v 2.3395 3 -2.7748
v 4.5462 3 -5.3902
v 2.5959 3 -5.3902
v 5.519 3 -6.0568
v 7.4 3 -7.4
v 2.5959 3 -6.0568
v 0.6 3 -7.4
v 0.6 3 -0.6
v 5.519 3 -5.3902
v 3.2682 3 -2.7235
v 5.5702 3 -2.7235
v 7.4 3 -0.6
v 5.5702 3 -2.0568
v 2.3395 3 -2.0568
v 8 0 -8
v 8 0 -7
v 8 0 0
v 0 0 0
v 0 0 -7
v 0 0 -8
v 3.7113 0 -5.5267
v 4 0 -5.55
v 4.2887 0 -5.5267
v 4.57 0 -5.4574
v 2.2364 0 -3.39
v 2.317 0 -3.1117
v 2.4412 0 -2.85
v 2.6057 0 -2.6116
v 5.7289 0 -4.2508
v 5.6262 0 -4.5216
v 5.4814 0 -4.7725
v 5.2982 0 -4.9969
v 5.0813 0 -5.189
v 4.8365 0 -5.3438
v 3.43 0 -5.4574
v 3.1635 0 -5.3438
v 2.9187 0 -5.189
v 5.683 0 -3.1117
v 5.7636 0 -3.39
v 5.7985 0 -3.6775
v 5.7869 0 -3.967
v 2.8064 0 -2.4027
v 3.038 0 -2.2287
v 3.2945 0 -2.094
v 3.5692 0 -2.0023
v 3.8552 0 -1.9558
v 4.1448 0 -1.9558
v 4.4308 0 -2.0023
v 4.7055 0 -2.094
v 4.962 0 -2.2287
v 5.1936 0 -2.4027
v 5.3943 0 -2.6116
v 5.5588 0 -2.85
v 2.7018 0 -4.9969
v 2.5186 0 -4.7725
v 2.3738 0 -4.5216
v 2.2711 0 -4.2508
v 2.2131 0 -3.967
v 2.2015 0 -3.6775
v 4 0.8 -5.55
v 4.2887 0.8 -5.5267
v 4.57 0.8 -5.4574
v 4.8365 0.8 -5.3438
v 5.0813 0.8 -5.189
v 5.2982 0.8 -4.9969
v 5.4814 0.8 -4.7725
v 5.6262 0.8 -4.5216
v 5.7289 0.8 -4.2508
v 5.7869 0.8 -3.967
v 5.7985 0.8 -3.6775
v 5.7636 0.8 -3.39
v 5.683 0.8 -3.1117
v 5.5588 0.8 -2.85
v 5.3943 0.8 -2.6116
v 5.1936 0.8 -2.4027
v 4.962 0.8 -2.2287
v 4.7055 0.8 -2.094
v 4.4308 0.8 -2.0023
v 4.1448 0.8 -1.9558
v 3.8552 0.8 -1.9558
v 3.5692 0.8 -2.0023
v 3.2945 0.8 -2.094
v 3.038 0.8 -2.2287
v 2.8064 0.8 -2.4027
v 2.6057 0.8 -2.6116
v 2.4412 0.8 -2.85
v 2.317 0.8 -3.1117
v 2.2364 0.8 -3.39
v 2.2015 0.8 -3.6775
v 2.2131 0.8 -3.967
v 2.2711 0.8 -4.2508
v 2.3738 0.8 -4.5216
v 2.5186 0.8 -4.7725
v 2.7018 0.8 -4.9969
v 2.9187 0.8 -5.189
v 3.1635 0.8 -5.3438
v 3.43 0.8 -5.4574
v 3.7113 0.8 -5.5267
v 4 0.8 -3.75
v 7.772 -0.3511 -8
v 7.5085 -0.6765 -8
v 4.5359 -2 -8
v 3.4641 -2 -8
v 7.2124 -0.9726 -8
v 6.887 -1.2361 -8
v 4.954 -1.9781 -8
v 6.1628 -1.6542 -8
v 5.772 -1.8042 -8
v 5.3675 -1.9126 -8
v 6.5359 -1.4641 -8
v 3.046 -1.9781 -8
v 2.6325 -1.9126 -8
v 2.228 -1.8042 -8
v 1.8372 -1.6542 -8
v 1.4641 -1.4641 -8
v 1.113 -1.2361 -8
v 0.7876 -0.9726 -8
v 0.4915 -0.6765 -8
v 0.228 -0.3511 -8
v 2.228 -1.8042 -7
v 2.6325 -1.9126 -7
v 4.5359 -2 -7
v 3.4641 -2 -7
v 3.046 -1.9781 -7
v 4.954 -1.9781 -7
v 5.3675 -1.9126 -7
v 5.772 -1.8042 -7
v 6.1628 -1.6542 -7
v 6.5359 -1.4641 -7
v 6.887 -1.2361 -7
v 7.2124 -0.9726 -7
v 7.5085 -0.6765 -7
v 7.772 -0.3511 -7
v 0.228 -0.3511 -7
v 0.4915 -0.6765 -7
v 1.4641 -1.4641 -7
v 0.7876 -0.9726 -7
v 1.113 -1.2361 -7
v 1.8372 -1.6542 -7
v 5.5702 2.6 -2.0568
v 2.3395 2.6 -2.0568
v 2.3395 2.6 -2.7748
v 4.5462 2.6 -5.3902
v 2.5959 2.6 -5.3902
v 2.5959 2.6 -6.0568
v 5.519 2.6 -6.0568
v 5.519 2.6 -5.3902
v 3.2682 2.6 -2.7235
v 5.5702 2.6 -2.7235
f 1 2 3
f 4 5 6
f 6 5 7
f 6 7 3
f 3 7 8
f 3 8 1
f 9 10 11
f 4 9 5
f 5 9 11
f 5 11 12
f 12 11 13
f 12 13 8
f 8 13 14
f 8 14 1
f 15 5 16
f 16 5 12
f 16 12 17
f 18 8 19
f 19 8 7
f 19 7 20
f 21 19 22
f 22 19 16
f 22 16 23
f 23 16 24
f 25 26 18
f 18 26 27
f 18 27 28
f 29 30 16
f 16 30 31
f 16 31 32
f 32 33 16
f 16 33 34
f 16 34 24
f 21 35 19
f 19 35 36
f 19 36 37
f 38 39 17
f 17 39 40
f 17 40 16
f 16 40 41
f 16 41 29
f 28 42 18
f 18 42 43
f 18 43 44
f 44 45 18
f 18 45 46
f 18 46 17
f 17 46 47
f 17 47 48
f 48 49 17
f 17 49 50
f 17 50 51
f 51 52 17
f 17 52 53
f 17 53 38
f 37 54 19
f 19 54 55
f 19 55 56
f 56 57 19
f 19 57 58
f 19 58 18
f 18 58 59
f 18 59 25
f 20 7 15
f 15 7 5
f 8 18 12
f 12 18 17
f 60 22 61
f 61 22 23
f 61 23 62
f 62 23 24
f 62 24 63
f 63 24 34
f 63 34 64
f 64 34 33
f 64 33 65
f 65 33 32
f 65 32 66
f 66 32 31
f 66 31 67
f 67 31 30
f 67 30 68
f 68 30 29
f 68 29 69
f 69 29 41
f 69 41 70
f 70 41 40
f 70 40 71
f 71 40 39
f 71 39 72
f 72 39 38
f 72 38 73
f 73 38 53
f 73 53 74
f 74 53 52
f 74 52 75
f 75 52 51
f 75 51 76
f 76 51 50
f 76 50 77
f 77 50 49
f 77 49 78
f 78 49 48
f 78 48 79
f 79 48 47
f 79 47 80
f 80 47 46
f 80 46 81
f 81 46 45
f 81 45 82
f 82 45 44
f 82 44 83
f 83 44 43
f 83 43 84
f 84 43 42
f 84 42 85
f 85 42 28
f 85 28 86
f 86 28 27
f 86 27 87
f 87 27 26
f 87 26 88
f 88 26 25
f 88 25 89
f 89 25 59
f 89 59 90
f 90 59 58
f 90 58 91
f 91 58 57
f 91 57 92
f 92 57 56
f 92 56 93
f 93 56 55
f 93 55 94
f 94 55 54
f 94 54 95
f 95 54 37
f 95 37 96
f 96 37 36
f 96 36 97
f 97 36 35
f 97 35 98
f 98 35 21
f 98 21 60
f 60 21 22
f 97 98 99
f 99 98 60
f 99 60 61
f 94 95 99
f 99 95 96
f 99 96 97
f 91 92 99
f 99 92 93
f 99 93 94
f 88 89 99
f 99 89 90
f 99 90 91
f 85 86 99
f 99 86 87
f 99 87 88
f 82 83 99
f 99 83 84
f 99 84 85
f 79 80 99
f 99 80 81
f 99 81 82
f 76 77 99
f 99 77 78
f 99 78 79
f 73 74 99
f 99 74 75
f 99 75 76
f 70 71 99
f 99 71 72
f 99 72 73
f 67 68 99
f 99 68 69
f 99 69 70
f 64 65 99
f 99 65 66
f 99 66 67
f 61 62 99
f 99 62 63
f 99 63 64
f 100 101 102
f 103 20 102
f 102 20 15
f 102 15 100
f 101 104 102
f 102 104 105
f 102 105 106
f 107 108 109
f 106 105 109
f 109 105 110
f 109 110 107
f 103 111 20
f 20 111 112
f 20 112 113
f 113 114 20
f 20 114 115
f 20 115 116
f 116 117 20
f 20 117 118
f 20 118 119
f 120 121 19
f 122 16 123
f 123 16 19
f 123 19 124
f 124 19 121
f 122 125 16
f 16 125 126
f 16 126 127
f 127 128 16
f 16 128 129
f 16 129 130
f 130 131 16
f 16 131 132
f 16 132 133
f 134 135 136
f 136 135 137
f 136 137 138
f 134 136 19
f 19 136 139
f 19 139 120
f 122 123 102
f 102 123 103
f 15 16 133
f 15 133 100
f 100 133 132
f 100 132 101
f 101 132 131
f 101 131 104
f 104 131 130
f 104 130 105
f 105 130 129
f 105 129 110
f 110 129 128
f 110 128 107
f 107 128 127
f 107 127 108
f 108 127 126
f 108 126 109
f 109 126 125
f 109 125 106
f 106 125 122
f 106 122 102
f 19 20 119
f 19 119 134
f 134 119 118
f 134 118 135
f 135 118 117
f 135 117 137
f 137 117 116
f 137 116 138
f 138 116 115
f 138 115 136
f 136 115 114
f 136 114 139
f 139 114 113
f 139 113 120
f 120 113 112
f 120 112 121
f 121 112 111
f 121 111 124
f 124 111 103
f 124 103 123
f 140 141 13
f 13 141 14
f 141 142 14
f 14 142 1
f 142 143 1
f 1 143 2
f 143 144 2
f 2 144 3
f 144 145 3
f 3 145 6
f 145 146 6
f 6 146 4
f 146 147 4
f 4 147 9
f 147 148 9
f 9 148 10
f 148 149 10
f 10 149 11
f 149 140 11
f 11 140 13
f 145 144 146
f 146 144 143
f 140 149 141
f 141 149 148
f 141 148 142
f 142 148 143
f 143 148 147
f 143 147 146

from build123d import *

# Parameters (mm, degrees)
SKETCH1_W               = 8
SKETCH1_H               = 8
BOSS_EXTRUDE1_DEPTH     = 3
CUT_EXTRUDE1_DEPTH      = 12.704699911
CUT_EXTRUDE1_DEPTH_BACK = 12.704699911
CUT_EXTRUDE2_DEPTH      = 11
SKETCH4_R               = 1.8
CUT_EXTRUDE3_DEPTH      = 0.8
SKETCH5_W               = 8
SKETCH5_H               = 1
BOSS_EXTRUDE2_DEPTH     = 2
FILLET1_R               = 4
CUT_EXTRUDE4_DEPTH      = 0.4


with BuildPart() as part:
    # Sketch1 → Boss-Extrude1 (new body)
    with BuildSketch(Plane(origin=(0, 0, 0), x_dir=(1, 0, 0), z_dir=(0, 1, 0))):
        with Locations((4, 4)):
            Rectangle(SKETCH1_W, SKETCH1_H)
    extrude(amount=BOSS_EXTRUDE1_DEPTH)

    # Sketch2 → Cut-Extrude1 (cut, two sides: drawn at the far end of the back side and taken through both)
    with BuildSketch(Plane.XY.offset(-CUT_EXTRUDE1_DEPTH_BACK)):
        Polygon((0, 0), (0.6, 3), (0, 3), align=None)
        Polygon((8, 0), (7.4, 3), (8, 3), align=None)
    extrude(amount=CUT_EXTRUDE1_DEPTH + CUT_EXTRUDE1_DEPTH_BACK, mode=Mode.SUBTRACT)

    # Sketch3 → Cut-Extrude2 (cut)
    with BuildSketch(Plane(origin=(0, 0, 0), x_dir=(0, 0, -1), z_dir=(1, 0, 0))):
        Polygon((0, 0), (0.6, 3), (0, 3), align=None)
        Polygon((8, 3), (7.4, 3), (8, 0), align=None)
    extrude(amount=CUT_EXTRUDE2_DEPTH, mode=Mode.SUBTRACT)

    # Sketch4 → Cut-Extrude3 (cut)
    with BuildSketch(Plane.XZ):
        with Locations(Location((4, -3.75, 0), (0, 0, 270))):
            Circle(SKETCH4_R)
    extrude(amount=-CUT_EXTRUDE3_DEPTH, mode=Mode.SUBTRACT)

    # Sketch5 → Boss-Extrude2 (add)
    with BuildSketch(Plane.XZ):
        with Locations((4, -7.5)):
            Rectangle(SKETCH5_W, SKETCH5_H)
    extrude(amount=BOSS_EXTRUDE2_DEPTH)

    # Fillet1
    # the kernel refuses this fillet: 4 mm, written as the material it takes off along each edge
    with BuildSketch(Plane(origin=(8, -2, -16.660254038), x_dir=(0, 1, 0), z_dir=(0, 0, 1)), Plane(origin=(0, -2, 1.660254038), x_dir=(0, 1, 0), z_dir=(0, 0, -1))) as fillet1_piece_1:
        with BuildLine():
            CenterArc((4, 3.464101615), FILLET1_R, 180, 60)
            Line((0, 3.464101615), (-0.08, 3.464101615))
            Line((-0.08, 3.464101615), (-0.08, 0))
            Line((-0.08, 0), (0, -0.08))
            ThreePointArc((0, -0.08), (1, -0.08), (1.96, -0.069282032))
            Line((1.96, -0.069282032), (2, 0))
        make_face()
    extrude(amount=18.320508076, mode=Mode.SUBTRACT)

    # Sketch6 → Cut-Extrude4 (cut)
    with BuildSketch(Plane(origin=(0, 3, 0), x_dir=(1, 0, 0), z_dir=(0, 1, 0))):
        Polygon((2.33946821, 2.056832464), (2.33946821, 2.774781182), (4.546198979, 5.390165797), (2.595878466, 5.390165797), (2.595878466, 6.056832464), (5.518955389, 6.056832464), (5.518955389, 5.390165797), (3.268154107, 2.72349913), (5.570237441, 2.72349913), (5.570237441, 2.056832464), align=None)
    extrude(amount=-CUT_EXTRUDE4_DEPTH, mode=Mode.SUBTRACT)


solid = part.part
